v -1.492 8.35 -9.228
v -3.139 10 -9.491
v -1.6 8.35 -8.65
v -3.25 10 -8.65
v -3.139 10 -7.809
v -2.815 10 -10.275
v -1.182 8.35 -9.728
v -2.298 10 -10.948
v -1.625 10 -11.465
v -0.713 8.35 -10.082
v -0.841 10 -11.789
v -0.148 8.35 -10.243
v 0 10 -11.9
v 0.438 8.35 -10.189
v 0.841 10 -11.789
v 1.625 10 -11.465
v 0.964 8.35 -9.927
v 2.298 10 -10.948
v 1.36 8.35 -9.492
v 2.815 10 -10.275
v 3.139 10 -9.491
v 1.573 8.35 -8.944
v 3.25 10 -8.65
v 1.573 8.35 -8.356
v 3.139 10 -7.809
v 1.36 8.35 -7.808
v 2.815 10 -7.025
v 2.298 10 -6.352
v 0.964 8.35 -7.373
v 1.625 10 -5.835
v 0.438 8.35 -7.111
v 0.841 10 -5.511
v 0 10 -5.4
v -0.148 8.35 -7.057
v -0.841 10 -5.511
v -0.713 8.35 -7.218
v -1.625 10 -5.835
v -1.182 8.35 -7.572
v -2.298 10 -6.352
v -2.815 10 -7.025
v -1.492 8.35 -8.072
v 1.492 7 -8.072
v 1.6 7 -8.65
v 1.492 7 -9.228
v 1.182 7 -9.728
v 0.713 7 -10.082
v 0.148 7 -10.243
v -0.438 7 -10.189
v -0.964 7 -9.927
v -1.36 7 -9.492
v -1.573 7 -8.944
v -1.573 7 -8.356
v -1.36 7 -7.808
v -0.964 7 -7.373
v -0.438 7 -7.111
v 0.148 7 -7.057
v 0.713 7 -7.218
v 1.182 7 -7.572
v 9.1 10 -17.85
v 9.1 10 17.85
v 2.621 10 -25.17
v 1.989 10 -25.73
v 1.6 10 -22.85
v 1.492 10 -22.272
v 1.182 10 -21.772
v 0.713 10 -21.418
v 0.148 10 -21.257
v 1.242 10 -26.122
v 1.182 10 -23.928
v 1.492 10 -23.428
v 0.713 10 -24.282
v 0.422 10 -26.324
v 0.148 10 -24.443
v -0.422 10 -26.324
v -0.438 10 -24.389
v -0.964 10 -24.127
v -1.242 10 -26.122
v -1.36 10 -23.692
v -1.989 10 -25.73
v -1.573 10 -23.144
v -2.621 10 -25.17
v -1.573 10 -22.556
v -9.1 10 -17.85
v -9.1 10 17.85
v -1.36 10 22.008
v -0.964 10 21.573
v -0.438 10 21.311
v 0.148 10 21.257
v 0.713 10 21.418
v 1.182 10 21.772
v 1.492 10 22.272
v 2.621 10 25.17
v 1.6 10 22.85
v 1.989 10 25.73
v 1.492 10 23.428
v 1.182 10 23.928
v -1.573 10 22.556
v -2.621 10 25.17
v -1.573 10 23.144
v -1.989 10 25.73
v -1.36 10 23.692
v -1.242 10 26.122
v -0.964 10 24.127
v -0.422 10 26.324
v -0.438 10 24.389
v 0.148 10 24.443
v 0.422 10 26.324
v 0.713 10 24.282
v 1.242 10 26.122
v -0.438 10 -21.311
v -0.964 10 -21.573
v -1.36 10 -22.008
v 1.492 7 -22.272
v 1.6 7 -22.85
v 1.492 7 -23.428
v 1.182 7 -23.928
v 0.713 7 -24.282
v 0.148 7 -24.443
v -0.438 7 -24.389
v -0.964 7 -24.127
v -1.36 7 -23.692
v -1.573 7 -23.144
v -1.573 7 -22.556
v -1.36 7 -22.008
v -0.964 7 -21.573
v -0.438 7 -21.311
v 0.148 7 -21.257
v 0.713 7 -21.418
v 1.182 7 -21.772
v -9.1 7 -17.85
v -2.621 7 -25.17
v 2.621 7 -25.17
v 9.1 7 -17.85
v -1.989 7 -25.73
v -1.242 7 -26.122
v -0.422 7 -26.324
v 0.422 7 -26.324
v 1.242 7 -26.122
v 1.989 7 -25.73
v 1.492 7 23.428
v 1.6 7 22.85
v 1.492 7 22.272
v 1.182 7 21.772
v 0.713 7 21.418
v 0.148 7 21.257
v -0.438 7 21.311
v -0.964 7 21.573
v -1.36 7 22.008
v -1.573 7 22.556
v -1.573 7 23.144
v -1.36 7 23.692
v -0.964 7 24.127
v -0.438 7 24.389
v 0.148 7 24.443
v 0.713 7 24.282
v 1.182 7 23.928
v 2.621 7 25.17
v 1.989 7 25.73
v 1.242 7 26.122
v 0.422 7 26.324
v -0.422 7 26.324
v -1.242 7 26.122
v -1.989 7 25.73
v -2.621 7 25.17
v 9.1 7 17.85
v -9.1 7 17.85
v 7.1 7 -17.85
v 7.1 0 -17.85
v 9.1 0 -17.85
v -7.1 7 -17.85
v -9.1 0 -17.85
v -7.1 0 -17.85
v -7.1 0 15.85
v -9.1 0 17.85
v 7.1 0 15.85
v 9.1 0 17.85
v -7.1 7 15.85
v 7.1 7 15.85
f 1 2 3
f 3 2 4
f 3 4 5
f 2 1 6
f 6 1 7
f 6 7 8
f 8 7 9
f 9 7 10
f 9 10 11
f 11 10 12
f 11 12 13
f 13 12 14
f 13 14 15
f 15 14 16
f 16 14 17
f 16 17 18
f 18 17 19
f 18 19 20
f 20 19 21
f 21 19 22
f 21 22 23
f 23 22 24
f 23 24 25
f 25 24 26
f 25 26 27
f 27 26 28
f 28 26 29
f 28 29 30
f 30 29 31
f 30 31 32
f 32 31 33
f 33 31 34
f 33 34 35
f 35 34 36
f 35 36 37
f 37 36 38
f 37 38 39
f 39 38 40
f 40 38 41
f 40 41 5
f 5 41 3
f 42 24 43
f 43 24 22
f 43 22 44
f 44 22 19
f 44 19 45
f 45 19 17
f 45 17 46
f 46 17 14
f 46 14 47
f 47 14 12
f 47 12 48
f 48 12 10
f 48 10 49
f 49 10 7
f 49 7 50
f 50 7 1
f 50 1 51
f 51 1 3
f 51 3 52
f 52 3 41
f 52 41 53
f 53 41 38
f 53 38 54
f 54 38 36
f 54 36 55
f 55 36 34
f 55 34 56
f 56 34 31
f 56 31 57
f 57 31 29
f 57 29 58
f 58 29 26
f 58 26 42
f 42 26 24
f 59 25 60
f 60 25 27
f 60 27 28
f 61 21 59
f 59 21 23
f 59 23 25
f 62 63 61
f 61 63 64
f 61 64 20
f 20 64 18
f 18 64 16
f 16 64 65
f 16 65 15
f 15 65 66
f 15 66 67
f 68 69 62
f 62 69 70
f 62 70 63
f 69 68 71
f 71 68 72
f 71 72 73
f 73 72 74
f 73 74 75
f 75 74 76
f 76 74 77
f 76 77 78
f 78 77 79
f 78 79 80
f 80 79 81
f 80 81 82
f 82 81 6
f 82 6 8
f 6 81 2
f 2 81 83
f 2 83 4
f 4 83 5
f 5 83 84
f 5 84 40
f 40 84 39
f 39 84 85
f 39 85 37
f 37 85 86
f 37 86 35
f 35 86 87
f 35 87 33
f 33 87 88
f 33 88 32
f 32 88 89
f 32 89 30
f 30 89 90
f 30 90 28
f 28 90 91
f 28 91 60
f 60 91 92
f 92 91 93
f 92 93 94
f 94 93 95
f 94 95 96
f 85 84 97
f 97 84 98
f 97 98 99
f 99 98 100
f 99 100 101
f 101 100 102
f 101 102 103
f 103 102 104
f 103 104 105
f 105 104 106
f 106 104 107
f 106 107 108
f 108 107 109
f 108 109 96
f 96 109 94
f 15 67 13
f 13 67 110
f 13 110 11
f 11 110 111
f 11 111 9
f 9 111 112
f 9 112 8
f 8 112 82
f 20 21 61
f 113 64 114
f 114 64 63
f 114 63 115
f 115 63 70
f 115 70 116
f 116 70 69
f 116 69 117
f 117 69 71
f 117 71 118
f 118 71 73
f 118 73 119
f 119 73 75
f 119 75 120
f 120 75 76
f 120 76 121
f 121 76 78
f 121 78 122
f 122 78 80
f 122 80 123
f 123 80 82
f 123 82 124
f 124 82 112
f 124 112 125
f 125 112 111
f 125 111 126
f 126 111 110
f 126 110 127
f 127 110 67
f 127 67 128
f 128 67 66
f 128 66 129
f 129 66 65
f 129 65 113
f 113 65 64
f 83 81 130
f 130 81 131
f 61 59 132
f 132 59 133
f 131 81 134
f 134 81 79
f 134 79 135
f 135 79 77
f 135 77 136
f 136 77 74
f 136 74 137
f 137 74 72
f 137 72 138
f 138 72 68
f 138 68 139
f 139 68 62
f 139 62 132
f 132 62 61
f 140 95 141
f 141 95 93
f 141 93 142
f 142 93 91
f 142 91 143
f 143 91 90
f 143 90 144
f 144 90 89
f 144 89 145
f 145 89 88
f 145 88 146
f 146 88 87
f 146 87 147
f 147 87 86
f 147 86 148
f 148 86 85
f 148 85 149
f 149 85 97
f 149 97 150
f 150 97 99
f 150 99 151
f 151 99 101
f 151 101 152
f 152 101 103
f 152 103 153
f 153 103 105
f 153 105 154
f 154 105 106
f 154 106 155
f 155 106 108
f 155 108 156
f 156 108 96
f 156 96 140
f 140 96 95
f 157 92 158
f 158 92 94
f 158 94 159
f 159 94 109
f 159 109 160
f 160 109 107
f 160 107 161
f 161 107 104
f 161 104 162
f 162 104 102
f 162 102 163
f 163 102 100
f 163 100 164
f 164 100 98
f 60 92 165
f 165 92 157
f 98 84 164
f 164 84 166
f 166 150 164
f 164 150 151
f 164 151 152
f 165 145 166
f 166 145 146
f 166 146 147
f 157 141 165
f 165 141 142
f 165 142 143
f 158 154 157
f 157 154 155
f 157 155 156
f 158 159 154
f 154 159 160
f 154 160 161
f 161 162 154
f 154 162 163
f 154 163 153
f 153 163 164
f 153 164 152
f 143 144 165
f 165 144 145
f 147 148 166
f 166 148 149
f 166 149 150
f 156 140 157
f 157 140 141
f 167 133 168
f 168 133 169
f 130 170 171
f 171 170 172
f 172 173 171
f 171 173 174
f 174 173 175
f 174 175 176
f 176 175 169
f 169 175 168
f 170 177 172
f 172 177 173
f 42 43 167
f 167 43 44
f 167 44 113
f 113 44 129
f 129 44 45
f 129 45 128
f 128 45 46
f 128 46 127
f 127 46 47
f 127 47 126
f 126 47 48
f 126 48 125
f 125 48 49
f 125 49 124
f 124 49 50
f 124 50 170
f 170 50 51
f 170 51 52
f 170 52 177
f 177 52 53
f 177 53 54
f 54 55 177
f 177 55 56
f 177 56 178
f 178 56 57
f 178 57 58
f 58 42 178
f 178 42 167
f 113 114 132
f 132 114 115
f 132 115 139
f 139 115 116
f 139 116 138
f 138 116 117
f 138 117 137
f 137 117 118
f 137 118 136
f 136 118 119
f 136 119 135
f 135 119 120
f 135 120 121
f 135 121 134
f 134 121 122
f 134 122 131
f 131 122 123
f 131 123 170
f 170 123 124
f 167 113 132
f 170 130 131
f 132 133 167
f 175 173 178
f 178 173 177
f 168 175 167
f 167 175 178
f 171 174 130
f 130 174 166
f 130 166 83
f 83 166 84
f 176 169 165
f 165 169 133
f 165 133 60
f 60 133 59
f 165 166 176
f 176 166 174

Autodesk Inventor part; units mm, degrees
ref_plane "YZ Plane" through (0, 0, 0) normal (1, 0, 0) x (0, 1, 0)
ref_plane "XZ Plane" through (0, 0, 0) normal (0, 1, 0) x (-1, 0, 0)
ref_plane "XY Plane" through (0, 0, 0) normal (0, 0, 1) x (1, 0, 0)
sketch "Эскиз1" plane through (0, 0, 0) normal (0, 1, 0) x (-1, 0, 0)
  line L0 (7.1, -15.85) -> (-7.1, -15.85)
  line L1 (-7.1, -15.85) -> (-7.1, 15.85)
  line L2 (-7.1, 15.85) -> (7.1, 15.85)
  line L3 (7.1, 15.85) -> (7.1, -15.85)
  line L4 (7.1, -15.85) -> (-7.1, 15.85) construction
  line L5 (-7.1, -15.85) -> (7.1, 15.85) construction
  line L6 (9.1, -17.85) -> (-9.1, -17.85)
  line L7 (-9.1, -17.85) -> (-9.1, 17.85)
  line L8 (-9.1, 17.85) -> (9.1, 17.85)
  line L9 (9.1, 17.85) -> (9.1, -17.85)
  point P0 (0, 0)
  dimension "d0" = 14.2
  dimension "d1" = 31.7
  dimension "d2" = 2
extrude "Выдавливание1" add sketch "Эскиз1" along normal blind 7
sketch "Эскиз2" plane through (0, 7, 0) normal (0, 1, 0) x (1, 0, 0)
  line L0 (-9.1, 17.85) -> (-9.1, -17.85) projected
  line L1 (-9.1, -17.85) -> (9.1, -17.85) projected
  line L2 (9.1, -17.85) -> (9.1, 17.85) projected
  line L3 (9.1, 17.85) -> (-9.1, 17.85) projected
  point P0 (0, 0)
extrude "Выдавливание2" add sketch "Эскиз2" along normal blind 3
sketch "Эскиз4" plane through (9.1, 0, -17.85) normal (0, 0, -1) x (-1, 0, 0)
  line L0 (0, 0) -> (0, 10) construction
  line L1 (0, 0) -> (0, 10) construction
  line L2 (0, 0) -> (18.2, 0) construction
  line L3 (18.2, 0) -> (18.2, 10) construction
  line L4 (18.2, 0) -> (18.2, 10) construction
  line L5 (0, 0) -> (0, 10) projected
  line L6 (0, 0) -> (0, 10)
  line L7 (18.2, 0) -> (0, 0) projected
  line L8 (0, 0) -> (18.2, 0)
  line L9 (18.2, 0) -> (18.2, 10)
  line L10 (5.972, 10) -> (0, 10)
  line L11 (0, 10) -> (18.2, 10)
  line L12 (0, 0) -> (0, 10) projected
  line L13 (0, 10) -> (0, 7)
  line L14 (2, 0) -> (2, 7)
  line L15 (2, 7) -> (16.2, 7)
  line L16 (16.2, 7) -> (16.2, 0)
  point P0 (9.1, 0)
  point P1 (18.2, 7)
  point P2 (0, 5)
  point P3 (18.2, 5)
  point P4 (16.2, 0)
  dimension "d1" = 31.7
  dimension "d15" = 2
  dimension "d16" = 2
extrude "Выдавливание4" cut sketch "Эскиз4" against normal blind 3 contours L14 L15 L16 L7
sketch "Эскиз5" plane through (0, 10, 0) normal (0, 1, 0) x (1, 0, 0)
  line L0 (0, 0) -> (0, -28.4562) construction
  circle A0 centre (0, -22.85) radius 1.6
  circle A1 centre (0, 22.85) radius 1.6
  line L1 (-9.1, -17.85) -> (9.1, -17.85) projected
  line L2 (9.1, 17.85) -> (-9.1, 17.85) projected
  arc A2 (2.6208, 25.1698) -> (-2.6208, 25.1698) centre (0, 22.85) ccw
  arc A3 (-2.6208, -25.1698) -> (2.6208, -25.1698) centre (0, -22.85) ccw
  line L3 (9.1, 17.85) -> (7.1, 17.85) projected
  line L4 (9.1, 17.85) -> (2.6208, 25.1698)
  line L5 (-9.1, 17.85) -> (-2.6208, 25.1698)
  line L6 (-9.1, -17.85) -> (-2.6208, -25.1698)
  line L7 (9.1, -17.85) -> (9.1, 17.85) projected
  line L8 (9.1, -17.85) -> (2.6208, -25.1698)
  dimension "d32" = 3.2
  dimension "d33" = 3.2
  dimension "d34" = 5
  dimension "d35" = 5
  dimension "d36" = 7
  dimension "d37" = 7
extrude "Выдавливание5" add sketch "Эскиз5" against normal blind 3
sketch "Эскиз6" plane through (0, 7, 0) normal (0, -1, 0) x (1, 0, 0)
  circle A0 centre (0, -8.65) radius 1.5 construction
  circle A1 centre (0, -8.65) radius 1.6
  point P0 (0, 0)
  dimension "d38" = 3.2
extrude "Выдавливание6" cut sketch "Эскиз6" against normal blind 10
chamfer "Фаска1" distance 1.65 angle 45 1 edges at (-1.6, 10, -8.65)
properties part number "креп_опт" material "Полипропилен"
